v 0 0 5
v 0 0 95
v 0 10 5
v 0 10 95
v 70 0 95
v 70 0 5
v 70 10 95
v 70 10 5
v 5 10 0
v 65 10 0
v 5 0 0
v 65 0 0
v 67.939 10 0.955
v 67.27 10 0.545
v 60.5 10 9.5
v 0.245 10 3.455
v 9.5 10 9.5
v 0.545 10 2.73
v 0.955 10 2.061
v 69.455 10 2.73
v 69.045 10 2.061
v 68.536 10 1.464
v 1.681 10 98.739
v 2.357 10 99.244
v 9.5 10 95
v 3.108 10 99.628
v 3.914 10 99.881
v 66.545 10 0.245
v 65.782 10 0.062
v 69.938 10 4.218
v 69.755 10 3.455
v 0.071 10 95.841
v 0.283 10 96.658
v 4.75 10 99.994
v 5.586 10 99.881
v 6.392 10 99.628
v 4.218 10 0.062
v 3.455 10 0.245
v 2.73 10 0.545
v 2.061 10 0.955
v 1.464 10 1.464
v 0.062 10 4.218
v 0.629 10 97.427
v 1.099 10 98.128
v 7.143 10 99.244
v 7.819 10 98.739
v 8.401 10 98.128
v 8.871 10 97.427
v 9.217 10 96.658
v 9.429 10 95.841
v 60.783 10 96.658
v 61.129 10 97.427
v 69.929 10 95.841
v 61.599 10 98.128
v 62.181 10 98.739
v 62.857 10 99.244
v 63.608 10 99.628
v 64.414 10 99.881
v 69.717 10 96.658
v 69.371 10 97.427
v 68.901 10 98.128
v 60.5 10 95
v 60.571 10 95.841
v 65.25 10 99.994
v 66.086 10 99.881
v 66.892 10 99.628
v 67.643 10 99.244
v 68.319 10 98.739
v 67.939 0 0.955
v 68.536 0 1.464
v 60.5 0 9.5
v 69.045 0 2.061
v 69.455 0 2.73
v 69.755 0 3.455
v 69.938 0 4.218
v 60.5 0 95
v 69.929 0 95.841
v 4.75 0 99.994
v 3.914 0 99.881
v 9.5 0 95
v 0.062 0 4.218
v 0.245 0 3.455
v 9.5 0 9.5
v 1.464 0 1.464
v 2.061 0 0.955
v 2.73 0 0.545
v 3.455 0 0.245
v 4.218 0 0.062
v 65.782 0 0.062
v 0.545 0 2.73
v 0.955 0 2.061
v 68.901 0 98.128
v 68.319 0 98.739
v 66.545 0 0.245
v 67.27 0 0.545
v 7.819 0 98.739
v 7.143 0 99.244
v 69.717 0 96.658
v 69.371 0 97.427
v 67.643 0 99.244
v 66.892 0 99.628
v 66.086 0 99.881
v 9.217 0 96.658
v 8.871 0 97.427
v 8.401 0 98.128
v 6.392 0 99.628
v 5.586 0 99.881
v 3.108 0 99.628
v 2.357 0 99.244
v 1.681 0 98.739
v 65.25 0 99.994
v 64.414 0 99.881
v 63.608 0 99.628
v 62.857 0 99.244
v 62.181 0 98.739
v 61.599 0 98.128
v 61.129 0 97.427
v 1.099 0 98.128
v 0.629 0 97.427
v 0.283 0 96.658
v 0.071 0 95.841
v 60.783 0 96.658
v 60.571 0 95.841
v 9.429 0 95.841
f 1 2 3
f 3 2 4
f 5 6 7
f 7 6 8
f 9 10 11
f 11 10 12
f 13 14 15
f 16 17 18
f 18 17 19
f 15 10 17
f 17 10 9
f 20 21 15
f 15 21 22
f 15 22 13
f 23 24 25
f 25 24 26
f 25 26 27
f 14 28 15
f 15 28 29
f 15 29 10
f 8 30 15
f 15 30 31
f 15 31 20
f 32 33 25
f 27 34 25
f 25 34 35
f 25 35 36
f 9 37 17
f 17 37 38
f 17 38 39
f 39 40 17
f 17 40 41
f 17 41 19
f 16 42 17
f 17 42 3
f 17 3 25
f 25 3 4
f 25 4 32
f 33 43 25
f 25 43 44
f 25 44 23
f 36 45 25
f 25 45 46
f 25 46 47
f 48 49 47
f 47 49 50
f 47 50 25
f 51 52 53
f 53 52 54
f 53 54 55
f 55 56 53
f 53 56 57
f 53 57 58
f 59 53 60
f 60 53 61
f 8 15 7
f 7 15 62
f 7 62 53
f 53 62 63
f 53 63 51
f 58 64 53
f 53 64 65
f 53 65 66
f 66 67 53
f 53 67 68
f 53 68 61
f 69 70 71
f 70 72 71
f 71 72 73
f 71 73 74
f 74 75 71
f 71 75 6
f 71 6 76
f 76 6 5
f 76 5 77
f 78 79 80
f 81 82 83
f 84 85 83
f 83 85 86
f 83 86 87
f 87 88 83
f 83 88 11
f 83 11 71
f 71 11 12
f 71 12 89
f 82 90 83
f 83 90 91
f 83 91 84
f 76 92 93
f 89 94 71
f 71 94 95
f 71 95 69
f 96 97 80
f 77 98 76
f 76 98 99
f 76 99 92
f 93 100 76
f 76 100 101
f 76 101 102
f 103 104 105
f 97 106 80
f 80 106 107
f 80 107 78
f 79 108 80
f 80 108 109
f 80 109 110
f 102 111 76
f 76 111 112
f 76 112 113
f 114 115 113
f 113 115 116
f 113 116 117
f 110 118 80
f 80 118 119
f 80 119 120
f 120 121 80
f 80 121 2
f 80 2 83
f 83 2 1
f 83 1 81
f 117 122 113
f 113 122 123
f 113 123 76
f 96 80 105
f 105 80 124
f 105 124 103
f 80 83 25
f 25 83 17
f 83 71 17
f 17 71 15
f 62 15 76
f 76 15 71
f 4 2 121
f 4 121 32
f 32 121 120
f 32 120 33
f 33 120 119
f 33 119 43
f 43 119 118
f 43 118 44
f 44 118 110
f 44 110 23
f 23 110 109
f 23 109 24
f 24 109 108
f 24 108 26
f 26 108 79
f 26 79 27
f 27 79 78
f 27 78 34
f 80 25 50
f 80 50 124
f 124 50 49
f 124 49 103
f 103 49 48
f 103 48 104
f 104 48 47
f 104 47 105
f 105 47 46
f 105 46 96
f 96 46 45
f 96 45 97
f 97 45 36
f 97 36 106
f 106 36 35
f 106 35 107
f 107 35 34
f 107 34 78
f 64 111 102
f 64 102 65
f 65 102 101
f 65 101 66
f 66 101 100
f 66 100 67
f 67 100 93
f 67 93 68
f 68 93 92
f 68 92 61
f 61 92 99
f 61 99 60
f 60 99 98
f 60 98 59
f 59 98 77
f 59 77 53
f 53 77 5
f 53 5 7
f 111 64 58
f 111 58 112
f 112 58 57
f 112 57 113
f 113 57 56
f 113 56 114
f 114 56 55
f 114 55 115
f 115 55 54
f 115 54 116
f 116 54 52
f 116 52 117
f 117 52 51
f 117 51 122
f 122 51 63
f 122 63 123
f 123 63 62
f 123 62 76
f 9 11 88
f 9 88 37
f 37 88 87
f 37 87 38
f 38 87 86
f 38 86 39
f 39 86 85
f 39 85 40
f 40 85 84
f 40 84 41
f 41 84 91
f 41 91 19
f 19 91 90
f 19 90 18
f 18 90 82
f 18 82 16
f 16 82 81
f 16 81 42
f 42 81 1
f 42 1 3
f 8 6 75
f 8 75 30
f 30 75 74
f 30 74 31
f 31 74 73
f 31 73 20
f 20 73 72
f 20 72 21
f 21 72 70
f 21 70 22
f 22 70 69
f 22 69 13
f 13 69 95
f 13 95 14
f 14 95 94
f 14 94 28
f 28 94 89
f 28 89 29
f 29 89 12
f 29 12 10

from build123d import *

# Parameters (mm, degrees)
CROQUIS1_W              = 70
CROQUIS1_H              = 100
SALIENTE_EXTRUIR1_DEPTH = 10
CROQUIS2_W              = 51
CROQUIS2_H              = 90.5
CORTAR_EXTRUIR1_DEPTH   = 10
REDONDEO1_R             = 5


with BuildPart() as part:
    # Croquis1 → Saliente-Extruir1 (new body)
    with BuildSketch(Plane(origin=(0, 0, 0), x_dir=(1, 0, 0), z_dir=(0, 1, 0))):
        with Locations((35, -50)):
            Rectangle(CROQUIS1_W, CROQUIS1_H)
    extrude(amount=SALIENTE_EXTRUIR1_DEPTH)

    # Croquis2 → Cortar-Extruir1 (cut)
    with BuildSketch(Plane(origin=(0, 10, 0), x_dir=(1, 0, 0), z_dir=(0, 1, 0))):
        with Locations((35, -54.75)):
            Rectangle(CROQUIS2_W, CROQUIS2_H)
    extrude(amount=-CORTAR_EXTRUIR1_DEPTH, mode=Mode.SUBTRACT)

    # Redondeo1
    # the kernel refuses this fillet: 5 mm, written as the material it takes off along each edge
    with BuildSketch(Plane(origin=(9.5, 22.5, 100), x_dir=(-1, 0, 0), z_dir=(0, -1, 0)), Plane(origin=(70, -12.5, 100), x_dir=(0, 0, -1), z_dir=(0, 1, 0)), Plane(origin=(70, -12.5, 0), x_dir=(-1, 0, 0), z_dir=(0, 1, 0))) as redondeo1_piece_1:
        with BuildLine():
            CenterArc((REDONDEO1_R, REDONDEO1_R), REDONDEO1_R, 180, 90)
            Line((0, REDONDEO1_R), (0, 0))
            Line((0, 0), (REDONDEO1_R, 0))
        make_face()
    extrude(amount=35, mode=Mode.SUBTRACT)
    with BuildSketch(Plane(origin=(60.5, 22.5, 100), x_dir=(1, 0, 0), z_dir=(0, -1, 0)), Plane(origin=(0, -12.5, 0), x_dir=(1, 0, 0), z_dir=(0, 1, 0)), Plane(origin=(0, -12.5, 100), x_dir=(0, 0, -1), z_dir=(0, 1, 0))) as redondeo1_piece_2:
        with BuildLine():
            CenterArc((REDONDEO1_R, -REDONDEO1_R), REDONDEO1_R, 90, 90)
            Line((0, -REDONDEO1_R), (0, 0))
            Line((0, 0), (REDONDEO1_R, 0))
        make_face()
    extrude(amount=35, mode=Mode.SUBTRACT)


solid = part.part
